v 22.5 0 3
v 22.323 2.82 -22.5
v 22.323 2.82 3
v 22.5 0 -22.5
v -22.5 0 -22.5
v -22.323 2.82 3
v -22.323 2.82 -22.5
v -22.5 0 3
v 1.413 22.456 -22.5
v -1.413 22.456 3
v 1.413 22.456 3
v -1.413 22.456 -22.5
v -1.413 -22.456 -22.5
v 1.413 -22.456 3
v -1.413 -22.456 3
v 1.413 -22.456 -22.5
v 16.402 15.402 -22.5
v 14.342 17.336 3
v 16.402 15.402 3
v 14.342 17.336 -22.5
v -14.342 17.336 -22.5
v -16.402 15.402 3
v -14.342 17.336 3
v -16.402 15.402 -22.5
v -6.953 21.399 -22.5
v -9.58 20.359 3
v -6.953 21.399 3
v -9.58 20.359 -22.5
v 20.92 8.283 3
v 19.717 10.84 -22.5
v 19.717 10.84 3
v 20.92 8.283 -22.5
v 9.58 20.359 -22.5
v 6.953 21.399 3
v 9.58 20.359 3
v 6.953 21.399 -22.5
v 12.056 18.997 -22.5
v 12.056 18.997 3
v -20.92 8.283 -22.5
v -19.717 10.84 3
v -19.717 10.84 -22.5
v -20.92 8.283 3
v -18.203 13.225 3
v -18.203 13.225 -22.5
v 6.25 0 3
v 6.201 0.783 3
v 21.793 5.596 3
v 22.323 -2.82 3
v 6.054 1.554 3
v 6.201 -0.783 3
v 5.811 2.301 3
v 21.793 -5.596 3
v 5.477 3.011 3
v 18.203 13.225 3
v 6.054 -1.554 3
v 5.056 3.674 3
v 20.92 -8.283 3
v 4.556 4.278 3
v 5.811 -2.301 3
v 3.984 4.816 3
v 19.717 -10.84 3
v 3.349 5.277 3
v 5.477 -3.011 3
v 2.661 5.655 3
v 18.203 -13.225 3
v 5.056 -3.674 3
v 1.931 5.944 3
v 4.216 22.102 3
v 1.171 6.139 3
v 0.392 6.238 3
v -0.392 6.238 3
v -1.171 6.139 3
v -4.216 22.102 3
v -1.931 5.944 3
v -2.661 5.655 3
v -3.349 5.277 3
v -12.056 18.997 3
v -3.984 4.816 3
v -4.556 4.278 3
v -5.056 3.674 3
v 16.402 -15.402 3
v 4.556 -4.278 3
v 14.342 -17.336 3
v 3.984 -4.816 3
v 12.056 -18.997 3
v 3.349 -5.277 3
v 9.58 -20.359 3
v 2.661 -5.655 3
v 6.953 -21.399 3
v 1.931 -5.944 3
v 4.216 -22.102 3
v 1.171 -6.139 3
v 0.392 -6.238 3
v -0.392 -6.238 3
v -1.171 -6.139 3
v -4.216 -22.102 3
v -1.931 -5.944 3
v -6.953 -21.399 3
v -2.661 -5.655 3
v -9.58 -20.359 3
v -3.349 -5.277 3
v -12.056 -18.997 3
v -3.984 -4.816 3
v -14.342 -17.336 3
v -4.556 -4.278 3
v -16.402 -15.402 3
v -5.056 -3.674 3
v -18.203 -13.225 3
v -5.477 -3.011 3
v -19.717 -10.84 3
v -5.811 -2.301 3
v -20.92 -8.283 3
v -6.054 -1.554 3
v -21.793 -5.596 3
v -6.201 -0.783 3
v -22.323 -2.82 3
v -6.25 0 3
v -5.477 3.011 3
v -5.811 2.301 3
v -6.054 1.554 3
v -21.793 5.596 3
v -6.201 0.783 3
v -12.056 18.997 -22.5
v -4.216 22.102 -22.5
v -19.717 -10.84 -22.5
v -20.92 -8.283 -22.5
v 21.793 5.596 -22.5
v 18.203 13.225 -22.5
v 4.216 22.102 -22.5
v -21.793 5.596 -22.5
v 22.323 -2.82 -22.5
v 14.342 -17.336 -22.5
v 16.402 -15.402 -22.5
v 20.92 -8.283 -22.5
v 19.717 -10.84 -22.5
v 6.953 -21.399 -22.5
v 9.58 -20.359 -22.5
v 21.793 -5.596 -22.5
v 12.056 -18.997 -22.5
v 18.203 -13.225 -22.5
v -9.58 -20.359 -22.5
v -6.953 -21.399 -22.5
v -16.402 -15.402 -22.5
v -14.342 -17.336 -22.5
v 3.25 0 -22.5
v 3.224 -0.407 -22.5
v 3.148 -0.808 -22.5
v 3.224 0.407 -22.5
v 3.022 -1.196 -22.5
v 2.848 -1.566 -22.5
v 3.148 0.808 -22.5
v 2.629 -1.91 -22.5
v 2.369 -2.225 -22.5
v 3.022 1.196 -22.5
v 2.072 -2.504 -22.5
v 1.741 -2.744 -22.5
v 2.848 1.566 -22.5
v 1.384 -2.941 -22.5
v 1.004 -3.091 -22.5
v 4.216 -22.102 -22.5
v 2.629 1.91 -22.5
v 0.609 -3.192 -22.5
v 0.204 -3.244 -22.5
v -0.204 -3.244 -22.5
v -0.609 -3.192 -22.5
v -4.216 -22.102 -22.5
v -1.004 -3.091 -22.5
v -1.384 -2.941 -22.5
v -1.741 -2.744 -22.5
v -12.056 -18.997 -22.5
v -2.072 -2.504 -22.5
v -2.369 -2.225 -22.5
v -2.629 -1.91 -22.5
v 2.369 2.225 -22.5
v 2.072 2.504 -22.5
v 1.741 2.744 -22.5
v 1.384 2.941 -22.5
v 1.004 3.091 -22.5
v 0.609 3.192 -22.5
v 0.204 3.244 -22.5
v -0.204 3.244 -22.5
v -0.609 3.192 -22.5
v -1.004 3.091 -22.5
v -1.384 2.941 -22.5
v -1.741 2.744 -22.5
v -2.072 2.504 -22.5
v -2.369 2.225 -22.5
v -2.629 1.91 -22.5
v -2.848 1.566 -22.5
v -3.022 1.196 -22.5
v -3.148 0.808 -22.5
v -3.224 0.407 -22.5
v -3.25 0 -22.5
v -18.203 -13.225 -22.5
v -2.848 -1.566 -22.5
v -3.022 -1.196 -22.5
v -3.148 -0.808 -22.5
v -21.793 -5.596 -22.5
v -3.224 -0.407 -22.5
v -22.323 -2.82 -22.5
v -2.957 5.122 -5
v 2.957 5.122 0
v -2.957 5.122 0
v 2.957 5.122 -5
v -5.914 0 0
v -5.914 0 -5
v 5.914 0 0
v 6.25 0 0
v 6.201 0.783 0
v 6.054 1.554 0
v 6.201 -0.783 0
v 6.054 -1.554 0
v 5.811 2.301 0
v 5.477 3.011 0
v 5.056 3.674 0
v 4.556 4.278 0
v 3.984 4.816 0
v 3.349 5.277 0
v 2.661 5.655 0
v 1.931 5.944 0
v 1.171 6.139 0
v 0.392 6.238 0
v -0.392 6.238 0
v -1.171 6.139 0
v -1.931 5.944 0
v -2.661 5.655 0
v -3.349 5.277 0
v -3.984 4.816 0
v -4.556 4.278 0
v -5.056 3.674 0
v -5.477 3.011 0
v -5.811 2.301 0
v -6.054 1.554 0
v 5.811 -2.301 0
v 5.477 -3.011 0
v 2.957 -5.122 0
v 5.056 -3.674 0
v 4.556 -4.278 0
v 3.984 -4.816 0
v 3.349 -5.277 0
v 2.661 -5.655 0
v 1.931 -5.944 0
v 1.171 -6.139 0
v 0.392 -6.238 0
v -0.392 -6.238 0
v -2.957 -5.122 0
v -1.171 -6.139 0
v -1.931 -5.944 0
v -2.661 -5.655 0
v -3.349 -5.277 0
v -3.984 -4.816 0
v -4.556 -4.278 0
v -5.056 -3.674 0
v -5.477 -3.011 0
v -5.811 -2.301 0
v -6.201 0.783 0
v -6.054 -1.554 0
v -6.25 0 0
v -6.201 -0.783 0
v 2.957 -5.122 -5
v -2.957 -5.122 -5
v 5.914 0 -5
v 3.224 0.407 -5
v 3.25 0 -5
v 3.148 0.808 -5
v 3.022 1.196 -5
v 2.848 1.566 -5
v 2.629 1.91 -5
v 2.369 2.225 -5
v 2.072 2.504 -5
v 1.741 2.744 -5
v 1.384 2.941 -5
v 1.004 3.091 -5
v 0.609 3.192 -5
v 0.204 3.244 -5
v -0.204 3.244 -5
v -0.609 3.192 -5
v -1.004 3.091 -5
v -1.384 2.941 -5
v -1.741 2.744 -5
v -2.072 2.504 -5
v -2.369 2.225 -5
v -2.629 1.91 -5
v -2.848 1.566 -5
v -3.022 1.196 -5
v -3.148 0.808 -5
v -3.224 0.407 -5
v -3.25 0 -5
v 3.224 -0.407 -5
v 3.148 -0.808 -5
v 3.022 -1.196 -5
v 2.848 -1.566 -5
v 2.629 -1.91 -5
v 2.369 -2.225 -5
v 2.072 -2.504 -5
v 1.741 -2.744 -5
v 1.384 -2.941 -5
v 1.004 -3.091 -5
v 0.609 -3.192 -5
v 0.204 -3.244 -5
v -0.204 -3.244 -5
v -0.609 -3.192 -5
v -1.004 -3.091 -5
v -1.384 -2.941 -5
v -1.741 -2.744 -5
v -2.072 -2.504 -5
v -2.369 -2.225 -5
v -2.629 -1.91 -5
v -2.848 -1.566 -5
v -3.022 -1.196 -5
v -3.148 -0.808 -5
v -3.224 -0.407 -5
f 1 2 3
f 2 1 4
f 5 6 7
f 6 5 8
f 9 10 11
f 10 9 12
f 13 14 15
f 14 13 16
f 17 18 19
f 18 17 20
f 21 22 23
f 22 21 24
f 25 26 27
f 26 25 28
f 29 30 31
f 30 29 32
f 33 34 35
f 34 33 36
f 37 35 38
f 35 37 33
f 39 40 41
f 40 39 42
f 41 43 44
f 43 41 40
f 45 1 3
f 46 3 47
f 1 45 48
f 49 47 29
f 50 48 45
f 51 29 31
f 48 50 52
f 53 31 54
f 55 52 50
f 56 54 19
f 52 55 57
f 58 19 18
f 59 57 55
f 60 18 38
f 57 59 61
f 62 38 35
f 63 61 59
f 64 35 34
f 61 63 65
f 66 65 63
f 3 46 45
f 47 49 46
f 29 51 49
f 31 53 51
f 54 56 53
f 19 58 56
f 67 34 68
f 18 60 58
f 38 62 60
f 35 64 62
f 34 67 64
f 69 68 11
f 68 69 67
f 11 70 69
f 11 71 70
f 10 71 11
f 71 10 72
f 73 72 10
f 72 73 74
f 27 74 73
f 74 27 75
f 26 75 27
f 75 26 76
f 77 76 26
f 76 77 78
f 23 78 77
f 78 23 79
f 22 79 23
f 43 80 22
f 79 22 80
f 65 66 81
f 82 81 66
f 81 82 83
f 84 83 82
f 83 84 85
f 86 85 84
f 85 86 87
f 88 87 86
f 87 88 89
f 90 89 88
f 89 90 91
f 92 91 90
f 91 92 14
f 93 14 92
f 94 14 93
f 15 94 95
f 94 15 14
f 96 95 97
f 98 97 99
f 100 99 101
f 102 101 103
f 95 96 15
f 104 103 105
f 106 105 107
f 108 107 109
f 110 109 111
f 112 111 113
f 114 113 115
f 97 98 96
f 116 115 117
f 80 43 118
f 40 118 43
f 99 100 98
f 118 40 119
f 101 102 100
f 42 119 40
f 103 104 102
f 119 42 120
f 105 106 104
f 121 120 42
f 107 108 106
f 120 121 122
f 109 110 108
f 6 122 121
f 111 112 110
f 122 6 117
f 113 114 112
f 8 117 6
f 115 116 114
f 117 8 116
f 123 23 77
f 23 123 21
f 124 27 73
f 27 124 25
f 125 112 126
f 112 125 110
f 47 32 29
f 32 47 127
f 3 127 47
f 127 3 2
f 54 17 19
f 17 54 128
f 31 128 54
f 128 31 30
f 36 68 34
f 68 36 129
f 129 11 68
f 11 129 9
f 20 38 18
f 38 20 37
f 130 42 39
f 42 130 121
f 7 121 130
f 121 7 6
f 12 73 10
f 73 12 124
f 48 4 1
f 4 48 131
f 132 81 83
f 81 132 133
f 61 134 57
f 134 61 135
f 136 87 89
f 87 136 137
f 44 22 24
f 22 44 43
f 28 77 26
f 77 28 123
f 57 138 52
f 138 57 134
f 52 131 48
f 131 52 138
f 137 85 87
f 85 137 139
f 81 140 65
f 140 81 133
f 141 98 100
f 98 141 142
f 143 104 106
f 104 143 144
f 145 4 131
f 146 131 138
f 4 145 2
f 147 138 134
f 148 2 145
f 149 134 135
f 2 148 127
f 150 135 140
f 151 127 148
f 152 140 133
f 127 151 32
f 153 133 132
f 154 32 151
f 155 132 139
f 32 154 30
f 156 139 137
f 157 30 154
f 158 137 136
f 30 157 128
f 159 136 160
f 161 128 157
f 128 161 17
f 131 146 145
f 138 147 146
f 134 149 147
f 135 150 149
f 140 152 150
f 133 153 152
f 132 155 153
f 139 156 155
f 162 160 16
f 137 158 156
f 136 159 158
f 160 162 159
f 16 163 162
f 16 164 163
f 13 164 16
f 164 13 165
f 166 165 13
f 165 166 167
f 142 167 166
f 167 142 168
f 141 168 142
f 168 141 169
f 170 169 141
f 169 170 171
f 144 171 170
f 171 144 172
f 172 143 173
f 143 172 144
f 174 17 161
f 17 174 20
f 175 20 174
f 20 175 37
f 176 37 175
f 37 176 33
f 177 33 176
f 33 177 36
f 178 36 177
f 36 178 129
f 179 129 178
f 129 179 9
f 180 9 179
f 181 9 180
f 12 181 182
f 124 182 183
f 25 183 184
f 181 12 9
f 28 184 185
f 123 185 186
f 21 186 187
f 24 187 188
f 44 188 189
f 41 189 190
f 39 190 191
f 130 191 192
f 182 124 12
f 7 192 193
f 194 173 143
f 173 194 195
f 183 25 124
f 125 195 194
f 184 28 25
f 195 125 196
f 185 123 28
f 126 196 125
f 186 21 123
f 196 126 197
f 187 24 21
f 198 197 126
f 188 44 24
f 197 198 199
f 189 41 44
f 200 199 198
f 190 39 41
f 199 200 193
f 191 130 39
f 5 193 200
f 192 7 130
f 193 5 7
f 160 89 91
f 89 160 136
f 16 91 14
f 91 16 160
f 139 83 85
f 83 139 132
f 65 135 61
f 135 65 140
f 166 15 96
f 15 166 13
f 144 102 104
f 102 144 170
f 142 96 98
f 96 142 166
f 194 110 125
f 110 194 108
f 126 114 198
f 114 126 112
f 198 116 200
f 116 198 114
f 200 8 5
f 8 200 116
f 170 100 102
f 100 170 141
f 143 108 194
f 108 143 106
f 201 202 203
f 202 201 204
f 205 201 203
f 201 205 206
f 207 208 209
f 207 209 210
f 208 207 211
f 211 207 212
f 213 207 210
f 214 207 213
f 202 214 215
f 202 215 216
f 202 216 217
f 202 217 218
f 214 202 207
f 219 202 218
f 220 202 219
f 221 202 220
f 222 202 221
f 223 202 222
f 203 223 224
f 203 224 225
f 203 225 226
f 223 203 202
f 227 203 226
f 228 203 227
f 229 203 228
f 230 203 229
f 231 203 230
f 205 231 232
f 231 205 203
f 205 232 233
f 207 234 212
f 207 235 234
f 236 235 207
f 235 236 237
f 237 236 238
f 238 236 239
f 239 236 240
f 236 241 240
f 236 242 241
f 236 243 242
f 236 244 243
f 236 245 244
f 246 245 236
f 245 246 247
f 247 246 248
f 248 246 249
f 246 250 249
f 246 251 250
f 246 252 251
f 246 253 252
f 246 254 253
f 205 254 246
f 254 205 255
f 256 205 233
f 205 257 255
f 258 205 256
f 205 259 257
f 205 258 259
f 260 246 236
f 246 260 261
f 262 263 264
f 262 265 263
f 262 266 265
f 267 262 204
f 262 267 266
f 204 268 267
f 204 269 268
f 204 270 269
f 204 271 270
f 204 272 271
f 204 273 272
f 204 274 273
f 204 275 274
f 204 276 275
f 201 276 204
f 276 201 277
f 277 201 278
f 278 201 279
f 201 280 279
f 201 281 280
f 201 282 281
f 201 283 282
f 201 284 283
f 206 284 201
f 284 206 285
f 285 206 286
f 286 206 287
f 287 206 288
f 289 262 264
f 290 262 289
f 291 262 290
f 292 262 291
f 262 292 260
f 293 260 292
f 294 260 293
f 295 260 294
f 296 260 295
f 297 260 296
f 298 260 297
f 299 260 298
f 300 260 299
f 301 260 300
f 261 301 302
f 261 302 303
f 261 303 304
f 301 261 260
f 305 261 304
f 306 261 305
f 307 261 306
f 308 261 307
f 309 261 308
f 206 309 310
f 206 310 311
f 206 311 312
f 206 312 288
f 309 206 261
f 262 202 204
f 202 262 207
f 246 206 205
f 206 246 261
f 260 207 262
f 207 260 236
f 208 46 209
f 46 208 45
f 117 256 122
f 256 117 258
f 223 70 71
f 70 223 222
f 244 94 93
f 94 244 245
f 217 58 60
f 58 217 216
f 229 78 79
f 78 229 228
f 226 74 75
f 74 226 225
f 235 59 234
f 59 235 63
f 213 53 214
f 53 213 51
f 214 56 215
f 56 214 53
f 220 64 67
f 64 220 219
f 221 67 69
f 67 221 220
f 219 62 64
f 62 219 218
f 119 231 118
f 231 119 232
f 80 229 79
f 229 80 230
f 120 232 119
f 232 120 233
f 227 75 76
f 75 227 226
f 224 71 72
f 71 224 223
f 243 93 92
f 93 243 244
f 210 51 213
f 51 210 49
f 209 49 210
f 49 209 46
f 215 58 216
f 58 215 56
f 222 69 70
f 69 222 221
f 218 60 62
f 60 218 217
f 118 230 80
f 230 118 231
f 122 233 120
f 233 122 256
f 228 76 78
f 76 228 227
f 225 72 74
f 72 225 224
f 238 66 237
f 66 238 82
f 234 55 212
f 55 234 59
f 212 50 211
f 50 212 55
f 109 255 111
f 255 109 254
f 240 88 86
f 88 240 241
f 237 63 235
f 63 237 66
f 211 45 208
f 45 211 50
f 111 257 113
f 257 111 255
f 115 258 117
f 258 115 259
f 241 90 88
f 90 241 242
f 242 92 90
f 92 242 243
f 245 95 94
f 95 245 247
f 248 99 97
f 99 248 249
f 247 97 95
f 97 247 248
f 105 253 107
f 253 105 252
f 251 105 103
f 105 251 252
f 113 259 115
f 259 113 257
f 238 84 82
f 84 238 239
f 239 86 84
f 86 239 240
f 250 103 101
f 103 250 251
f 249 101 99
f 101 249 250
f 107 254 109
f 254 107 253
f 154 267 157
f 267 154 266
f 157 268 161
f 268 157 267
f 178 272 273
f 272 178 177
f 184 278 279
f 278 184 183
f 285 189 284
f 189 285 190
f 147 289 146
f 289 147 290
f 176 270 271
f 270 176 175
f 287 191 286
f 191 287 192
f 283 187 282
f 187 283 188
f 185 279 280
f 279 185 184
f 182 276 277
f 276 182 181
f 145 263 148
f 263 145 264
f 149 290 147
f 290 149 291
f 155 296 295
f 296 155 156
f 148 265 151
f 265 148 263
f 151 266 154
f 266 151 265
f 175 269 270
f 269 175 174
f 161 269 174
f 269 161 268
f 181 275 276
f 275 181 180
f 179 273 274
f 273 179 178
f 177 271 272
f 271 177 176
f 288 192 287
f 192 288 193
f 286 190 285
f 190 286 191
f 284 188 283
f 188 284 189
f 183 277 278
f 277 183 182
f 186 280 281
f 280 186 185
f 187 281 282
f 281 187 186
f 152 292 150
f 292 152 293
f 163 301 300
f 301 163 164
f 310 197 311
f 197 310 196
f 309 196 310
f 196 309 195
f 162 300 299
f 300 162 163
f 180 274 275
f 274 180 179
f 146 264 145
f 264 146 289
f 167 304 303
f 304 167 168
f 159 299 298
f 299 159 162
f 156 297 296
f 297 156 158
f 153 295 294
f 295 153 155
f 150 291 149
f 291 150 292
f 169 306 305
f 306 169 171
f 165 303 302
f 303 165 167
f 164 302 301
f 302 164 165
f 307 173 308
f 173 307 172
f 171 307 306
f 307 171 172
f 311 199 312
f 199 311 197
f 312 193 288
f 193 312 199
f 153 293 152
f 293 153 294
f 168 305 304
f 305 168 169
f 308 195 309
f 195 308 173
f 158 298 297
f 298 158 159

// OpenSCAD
$fn = 50;

difference() {
	union() {
		translate(v = [0, 0, -22.5]) {
			cylinder(h = 25.5, r = 22.5);
		}
		#translate(v = [0, 0, -24.0]) {
			cylinder(h = 24, r = 2.875);
		}
	}
	union() {
		translate(v = [0, 0, 0]) {
			rotate(a = [0, 0, 0]) {
				difference() {
					union() {
						translate(v = [0, 0, -5]) {
							linear_extrude(height = 5) {
								polygon(points = [[5.914249999999999, 0.0], [2.957125, 5.1218907443321156], [-2.9571249999999982, 5.1218907443321156], [-5.914249999999999, 7.242867331857232e-16], [-2.9571250000000022, -5.121890744332115], [2.9571249999999956, -5.121890744332118]]);
							}
						}
					}
					union();
				}
			}
		}
		#cylinder(h = 3, r = 6.25);
		#translate(v = [0, 0, -100.0]) {
			cylinder(h = 200, r = 3.25);
		}
	}
}
